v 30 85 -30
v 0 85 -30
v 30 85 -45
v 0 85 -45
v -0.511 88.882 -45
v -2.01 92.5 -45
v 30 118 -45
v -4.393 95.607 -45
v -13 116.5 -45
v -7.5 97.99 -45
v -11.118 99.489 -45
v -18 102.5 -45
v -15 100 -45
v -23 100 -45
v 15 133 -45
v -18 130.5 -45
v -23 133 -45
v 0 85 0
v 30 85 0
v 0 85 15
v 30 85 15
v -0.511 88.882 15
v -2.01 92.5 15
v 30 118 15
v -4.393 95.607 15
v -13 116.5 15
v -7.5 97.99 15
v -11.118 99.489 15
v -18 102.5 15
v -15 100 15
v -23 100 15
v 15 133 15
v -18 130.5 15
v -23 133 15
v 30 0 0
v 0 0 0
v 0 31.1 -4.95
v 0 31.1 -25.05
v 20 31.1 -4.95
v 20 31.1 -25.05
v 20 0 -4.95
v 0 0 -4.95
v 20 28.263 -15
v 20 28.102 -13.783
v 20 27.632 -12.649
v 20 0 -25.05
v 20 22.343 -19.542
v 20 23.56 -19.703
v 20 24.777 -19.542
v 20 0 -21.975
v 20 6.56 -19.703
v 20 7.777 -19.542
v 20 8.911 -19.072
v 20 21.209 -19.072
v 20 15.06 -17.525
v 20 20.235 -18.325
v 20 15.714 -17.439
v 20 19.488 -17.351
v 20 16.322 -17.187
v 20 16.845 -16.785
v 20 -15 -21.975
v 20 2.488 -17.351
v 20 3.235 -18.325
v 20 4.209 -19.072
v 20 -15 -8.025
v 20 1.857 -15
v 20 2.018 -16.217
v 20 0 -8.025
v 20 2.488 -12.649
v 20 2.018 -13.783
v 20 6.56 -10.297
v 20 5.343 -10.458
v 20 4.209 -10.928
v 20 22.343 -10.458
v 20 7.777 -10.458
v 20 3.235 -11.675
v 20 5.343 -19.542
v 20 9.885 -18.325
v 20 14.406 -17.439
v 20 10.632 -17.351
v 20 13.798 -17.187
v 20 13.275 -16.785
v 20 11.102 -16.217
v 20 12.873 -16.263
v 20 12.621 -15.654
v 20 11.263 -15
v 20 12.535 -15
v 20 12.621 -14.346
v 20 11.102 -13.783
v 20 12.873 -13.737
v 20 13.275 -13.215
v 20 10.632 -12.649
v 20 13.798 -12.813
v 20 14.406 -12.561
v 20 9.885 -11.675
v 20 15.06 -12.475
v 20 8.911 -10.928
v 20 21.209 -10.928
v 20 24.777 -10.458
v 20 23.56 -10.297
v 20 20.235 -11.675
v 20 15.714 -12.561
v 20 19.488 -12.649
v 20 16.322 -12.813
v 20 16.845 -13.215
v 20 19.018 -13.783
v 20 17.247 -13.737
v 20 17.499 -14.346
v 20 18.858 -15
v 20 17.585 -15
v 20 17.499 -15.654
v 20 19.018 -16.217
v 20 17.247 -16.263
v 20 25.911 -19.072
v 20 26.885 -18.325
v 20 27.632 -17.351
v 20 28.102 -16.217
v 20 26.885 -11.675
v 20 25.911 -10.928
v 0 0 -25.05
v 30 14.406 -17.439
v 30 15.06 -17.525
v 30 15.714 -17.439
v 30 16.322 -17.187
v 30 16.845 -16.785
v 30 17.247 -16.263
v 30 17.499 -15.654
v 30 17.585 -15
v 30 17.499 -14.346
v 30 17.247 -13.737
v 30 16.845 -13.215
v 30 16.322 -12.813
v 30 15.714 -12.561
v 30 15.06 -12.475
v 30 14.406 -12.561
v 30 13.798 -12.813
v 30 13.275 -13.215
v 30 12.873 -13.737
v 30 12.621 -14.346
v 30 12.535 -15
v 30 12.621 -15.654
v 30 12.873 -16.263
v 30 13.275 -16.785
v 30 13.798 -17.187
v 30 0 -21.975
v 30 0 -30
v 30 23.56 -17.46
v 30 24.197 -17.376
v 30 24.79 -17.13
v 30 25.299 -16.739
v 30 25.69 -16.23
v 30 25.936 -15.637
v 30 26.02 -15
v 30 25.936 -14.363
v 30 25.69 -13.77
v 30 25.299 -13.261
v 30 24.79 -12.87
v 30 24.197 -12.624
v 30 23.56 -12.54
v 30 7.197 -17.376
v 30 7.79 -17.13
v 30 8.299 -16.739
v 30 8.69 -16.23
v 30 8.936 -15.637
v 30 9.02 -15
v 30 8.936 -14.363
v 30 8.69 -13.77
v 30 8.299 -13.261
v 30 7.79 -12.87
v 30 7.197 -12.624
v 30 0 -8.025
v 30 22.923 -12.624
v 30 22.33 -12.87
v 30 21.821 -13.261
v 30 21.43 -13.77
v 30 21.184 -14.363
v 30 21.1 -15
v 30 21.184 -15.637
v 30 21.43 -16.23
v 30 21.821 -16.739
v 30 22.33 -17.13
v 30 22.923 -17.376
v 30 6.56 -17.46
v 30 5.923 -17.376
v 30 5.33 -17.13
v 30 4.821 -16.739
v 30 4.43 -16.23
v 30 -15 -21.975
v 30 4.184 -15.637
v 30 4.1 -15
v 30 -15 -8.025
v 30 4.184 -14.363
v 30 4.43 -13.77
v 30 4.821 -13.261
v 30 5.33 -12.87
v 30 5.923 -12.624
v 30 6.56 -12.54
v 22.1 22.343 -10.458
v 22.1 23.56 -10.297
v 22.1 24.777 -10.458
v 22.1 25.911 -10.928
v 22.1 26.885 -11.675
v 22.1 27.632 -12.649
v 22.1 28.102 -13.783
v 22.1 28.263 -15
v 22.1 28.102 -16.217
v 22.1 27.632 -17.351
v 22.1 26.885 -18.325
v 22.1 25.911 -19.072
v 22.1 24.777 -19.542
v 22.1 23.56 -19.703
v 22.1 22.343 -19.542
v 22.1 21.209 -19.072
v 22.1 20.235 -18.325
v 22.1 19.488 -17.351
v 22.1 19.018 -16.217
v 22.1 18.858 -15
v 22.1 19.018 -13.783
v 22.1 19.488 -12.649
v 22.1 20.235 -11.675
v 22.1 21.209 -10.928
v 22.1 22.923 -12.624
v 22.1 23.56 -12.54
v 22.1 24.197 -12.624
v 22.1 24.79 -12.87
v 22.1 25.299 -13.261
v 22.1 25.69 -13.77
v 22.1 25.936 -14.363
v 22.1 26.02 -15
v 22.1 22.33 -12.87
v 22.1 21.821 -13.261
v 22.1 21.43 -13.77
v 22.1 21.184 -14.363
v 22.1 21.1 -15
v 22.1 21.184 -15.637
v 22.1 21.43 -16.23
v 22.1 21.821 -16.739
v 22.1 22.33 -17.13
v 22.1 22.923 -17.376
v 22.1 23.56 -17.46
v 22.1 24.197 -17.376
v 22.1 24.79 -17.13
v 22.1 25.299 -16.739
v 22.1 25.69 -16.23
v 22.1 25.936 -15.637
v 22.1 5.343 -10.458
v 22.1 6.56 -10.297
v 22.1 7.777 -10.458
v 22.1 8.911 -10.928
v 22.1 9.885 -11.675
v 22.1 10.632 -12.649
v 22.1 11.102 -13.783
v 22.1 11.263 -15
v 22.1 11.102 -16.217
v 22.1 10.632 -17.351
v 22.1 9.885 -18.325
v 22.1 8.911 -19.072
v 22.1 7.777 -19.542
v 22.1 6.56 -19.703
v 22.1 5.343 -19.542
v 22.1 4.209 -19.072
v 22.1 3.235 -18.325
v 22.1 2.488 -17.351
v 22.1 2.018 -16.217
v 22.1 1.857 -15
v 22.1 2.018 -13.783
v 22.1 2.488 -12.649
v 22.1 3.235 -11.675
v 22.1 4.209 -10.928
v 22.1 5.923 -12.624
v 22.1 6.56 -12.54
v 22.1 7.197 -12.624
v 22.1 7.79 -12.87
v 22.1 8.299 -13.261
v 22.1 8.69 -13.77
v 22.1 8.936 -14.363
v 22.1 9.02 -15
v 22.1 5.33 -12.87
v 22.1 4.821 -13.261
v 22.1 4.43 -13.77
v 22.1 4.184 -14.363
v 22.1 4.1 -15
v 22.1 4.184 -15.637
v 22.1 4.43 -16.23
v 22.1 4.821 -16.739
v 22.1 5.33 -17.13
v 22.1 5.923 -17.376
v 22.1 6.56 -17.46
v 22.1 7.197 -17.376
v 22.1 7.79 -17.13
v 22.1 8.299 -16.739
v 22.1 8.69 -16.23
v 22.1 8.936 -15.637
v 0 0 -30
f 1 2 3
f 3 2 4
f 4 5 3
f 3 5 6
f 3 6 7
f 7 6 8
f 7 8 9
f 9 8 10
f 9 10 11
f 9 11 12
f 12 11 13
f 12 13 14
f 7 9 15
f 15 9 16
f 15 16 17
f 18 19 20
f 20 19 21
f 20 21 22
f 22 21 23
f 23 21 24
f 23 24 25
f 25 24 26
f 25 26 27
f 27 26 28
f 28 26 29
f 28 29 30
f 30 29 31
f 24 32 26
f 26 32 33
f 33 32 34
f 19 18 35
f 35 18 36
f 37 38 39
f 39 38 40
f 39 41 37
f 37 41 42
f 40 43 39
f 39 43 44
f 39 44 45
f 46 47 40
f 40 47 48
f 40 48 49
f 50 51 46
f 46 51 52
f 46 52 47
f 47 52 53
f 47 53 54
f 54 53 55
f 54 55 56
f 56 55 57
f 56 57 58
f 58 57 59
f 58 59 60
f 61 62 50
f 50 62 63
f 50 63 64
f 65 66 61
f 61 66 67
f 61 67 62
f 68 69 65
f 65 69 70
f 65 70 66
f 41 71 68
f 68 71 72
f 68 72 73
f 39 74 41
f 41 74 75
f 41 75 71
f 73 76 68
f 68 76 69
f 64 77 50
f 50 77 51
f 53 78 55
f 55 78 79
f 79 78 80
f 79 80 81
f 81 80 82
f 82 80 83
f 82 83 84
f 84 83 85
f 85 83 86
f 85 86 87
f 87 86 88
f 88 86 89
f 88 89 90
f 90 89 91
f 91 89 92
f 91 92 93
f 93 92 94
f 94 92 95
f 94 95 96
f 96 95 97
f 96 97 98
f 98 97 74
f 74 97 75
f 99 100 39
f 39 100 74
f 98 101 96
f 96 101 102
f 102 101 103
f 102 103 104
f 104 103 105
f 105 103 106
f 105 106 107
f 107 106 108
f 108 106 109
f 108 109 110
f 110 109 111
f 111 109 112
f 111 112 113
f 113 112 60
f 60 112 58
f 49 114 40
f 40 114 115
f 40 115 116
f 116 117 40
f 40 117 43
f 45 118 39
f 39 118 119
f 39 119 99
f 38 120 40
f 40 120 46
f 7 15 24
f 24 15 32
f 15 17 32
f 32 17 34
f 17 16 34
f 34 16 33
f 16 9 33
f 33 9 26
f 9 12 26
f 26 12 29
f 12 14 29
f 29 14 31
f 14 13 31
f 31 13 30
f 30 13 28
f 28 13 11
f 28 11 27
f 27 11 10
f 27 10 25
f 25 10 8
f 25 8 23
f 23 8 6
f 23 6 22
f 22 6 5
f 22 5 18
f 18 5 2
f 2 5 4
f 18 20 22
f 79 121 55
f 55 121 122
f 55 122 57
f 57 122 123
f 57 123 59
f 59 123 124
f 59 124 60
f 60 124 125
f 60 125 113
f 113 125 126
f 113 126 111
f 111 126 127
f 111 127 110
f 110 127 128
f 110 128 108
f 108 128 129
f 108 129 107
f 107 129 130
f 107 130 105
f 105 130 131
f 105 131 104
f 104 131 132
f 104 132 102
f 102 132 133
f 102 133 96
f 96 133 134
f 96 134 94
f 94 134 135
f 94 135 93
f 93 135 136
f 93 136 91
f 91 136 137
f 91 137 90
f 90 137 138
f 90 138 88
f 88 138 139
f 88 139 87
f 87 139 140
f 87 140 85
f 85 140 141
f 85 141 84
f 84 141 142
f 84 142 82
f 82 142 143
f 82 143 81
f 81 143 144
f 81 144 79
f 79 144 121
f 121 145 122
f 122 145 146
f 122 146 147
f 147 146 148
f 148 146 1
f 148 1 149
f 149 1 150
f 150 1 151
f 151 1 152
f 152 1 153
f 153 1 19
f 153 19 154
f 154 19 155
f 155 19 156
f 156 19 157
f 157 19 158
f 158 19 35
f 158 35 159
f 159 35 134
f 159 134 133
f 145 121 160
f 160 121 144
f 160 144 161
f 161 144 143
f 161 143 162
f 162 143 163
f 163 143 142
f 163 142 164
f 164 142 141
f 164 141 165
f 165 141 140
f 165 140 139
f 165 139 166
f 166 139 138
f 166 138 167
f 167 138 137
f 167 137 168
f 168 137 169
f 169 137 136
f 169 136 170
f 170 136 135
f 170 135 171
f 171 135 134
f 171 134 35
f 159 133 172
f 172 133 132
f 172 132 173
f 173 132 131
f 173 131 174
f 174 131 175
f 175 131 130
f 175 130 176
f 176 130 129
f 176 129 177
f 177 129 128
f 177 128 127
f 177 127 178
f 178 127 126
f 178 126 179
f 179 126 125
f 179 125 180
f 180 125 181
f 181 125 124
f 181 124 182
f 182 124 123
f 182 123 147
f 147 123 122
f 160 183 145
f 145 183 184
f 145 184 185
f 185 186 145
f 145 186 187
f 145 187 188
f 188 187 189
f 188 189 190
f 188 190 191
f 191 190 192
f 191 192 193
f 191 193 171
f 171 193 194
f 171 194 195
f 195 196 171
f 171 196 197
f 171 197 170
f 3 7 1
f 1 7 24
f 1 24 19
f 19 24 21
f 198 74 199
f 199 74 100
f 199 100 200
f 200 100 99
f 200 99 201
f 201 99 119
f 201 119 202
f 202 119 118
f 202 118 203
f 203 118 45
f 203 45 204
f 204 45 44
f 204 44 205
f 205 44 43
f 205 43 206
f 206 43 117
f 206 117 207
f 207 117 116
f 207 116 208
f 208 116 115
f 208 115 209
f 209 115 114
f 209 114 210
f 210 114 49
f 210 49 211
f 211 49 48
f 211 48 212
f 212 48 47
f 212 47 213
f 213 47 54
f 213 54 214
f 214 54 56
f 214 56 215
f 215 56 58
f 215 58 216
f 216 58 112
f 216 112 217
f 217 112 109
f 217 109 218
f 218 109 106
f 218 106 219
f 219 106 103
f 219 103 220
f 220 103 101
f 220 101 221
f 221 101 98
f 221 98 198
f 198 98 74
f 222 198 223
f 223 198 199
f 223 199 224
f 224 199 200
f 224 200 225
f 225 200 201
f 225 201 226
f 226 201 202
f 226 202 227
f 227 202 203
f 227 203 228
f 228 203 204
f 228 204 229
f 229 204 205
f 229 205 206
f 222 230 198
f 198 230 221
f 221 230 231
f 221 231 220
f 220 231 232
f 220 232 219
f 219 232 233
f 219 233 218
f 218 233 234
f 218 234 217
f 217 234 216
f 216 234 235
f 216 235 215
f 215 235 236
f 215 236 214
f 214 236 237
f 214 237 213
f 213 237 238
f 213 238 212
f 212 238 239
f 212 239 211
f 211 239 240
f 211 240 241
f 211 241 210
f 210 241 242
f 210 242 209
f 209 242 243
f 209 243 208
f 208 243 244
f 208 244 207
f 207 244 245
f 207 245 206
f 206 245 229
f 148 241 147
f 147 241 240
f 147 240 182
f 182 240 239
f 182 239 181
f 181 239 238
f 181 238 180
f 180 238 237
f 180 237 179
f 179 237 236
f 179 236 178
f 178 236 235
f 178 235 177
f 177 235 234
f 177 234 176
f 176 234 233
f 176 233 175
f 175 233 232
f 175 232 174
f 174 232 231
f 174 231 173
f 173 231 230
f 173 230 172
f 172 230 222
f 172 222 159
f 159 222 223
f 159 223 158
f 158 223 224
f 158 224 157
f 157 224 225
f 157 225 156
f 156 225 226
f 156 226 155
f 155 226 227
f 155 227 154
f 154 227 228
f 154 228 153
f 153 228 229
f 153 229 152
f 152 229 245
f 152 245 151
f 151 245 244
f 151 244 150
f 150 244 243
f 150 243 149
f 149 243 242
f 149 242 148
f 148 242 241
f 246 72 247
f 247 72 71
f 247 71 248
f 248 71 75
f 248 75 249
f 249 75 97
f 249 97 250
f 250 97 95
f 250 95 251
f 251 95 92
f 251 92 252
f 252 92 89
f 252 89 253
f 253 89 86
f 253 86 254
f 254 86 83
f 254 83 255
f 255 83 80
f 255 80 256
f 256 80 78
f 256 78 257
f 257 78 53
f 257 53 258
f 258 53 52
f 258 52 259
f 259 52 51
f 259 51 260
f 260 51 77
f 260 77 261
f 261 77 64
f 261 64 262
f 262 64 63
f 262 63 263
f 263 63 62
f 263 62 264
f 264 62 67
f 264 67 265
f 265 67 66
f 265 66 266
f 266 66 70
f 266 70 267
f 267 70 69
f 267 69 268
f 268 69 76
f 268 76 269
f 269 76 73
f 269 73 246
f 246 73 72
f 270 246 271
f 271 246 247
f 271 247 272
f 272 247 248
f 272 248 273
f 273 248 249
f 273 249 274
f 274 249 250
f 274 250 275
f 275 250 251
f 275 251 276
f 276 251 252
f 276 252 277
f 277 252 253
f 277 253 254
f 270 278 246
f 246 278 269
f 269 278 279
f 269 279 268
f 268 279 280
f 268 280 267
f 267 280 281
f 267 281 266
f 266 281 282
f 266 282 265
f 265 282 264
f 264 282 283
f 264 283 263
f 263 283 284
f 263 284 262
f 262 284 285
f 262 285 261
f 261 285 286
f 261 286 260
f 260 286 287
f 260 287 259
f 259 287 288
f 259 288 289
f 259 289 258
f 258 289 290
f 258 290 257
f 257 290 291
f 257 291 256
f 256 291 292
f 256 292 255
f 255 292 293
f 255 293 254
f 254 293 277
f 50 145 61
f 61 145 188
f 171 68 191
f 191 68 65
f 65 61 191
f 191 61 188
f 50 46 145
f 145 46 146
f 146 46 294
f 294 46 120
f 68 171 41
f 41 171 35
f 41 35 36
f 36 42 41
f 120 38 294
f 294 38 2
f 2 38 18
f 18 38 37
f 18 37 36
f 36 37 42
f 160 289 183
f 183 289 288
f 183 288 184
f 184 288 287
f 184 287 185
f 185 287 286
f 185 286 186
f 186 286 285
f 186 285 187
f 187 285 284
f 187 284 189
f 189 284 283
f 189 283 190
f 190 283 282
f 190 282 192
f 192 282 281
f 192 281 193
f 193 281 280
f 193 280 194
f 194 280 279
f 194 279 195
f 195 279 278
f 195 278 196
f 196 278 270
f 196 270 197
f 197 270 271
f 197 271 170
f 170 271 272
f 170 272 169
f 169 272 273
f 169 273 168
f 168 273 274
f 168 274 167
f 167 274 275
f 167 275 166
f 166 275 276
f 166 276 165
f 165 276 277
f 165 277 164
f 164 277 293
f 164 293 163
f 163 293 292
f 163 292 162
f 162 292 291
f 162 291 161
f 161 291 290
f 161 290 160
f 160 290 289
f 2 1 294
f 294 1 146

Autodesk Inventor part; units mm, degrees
ref_plane "YZ Plane" through (0, 0, 0) normal (1, 0, 0) x (0, 1, 0)
ref_plane "XZ Plane" through (0, 0, 0) normal (0, 1, 0) x (-1, 0, 0)
sketch "Sketch1" plane through (0, 0, 0) normal (0, 0, 1) x (1, 0, 0)
  line L0 (0, 0) -> (25, 0)
  line L1 (25, 0) -> (25, 40)
  line L2 (25, 40) -> (0, 40)
  line L3 (0, 40) -> (0, 0)
  dimension "d1" = 25
  dimension "d2" = 40
  dimension "d3" = 25
extrude "Extrusion1" add sketch "Sketch1" against normal blind 30
sketch "Sketch2" plane through (25, 0, 0) normal (1, 0, 0) x (0, 0, -1)
  line L0 (0, 0) -> (30, 0) projected
  circle A0 centre (15, 6.56) radius 2.46
extrude "Extrusion2" cut sketch "Sketch2" against normal blind 30
sketch "Sketch3" plane through (0, 0, 0) normal (-1, 0, 0) x (0, 0, 1)
  line L0 (0, 0) -> (-30, 0) projected
  line L1 (-25.05, 0) -> (-4.95, 0)
  line L2 (-4.95, 0) -> (-4.95, 33.12)
  line L3 (-4.95, 33.12) -> (-25.05, 33.12)
  line L4 (-25.05, 33.12) -> (-25.05, 0)
  dimension "d11" = 20.1
extrude "Extrusion3" cut sketch "Sketch3" against normal blind 20
sketch "Sketch4" plane through (0, 0, 0) normal (0, -1, 0) x (1, 0, 0)
  line L0 (20, -4.95) -> (20, -25.05) projected
  line L1 (20, -15) -> (25, -15)
  line L2 (25, 0) -> (25, -30) projected
  line L3 (20, -8.025) -> (25, -8.025)
  line L4 (25, -8.025) -> (25, -21.975)
  line L5 (25, -21.975) -> (20, -21.975)
  line L6 (20, -21.975) -> (20, -8.025)
  line L7 (20, -8.025) -> (25, -21.975) construction
  line L8 (25, -8.025) -> (20, -21.975) construction
  line L9 (25, -12.54) -> (25, -17.46) projected
  point P0 (0, 0)
  point P1 (22.5, -15)
  dimension "d14" = 13.95
extrude "Extrusion4" add sketch "Sketch4" along normal blind 15
sketch "Sketch5" plane through (20, 0, 0) normal (-1, 0, 0) x (0, 0, 1)
  circle A0 centre (-15, 6.56) radius 2.46 projected
  circle A1 centre (-15, 6.56) radius 4.7025
  circle A2 centre (-15, 6.56) radius 2.46 projected
  circle A3 centre (-15, 6.56) radius 2.46
  point P0 (0, 0)
  dimension "d17" = 9.405
extrude "Extrusion5" cut sketch "Sketch5" against normal blind 2.1
sketch "Sketch6" plane through (25, 0, 0) normal (1, 0, 0) x (0, 0, -1)
  circle A0 centre (15, 6.56) radius 4.7025 projected
  line L0 (15, 6.56) -> (15, 23.56)
  circle A1 centre (15, 23.56) radius 2.46
  point P0 (0, 0)
  dimension "d20" = 17
  dimension "d21" = 4.92
extrude "Extrusion6" cut sketch "Sketch6" against normal blind 10 contours A1
sketch "Sketch7" plane through (20, 0, 0) normal (-1, 0, 0) x (0, 0, 1)
  circle A0 centre (-15, 23.56) radius 2.46 projected
  circle A1 centre (-15, 23.56) radius 4.7025
  point P0 (0, 0)
  dimension "d24" = 9.405
extrude "Extrusion7" cut sketch "Sketch7" against normal blind 2.1
sketch "Sketch9" plane through (25, 0, 0) normal (1, 0, 0) x (0, 0, -1)
  circle A0 centre (15, 6.56) radius 2.46 projected
  circle A1 centre (15, 6.56) radius 2.46
  circle A2 centre (15, 23.56) radius 2.46 projected
  circle A3 centre (15, 23.56) radius 2.46
  line L0 (30, 40) -> (30, 0) projected
  line L1 (30, 0) -> (30, 40)
  line L2 (30, 40) -> (0, 40)
  line L3 (0, 40) -> (0, 0)
  line L4 (0, 0) -> (8.025, 0) projected
  line L5 (21.975, 0) -> (21.975, -15)
  line L6 (21.975, -15) -> (8.025, -15)
  line L7 (8.025, -15) -> (8.025, 0)
  line L8 (0, 0) -> (8.025, 0)
  line L9 (21.975, 0) -> (30, 0)
extrude "Extrusion8" add sketch "Sketch9" along normal blind 5
sketch "Sketch10" plane through (0, 40, 0) normal (0, 1, 0) x (1, 0, 0)
  line L0 (0, 30) -> (30, 30) projected
  line L1 (30, 0) -> (0, 0) projected
  line L2 (0, 30) -> (30, 30)
  line L3 (30, 30) -> (30, 0)
  line L4 (30, 0) -> (0, 0)
  line L5 (0, 0) -> (0, 30)
extrude "Extrusion9" add sketch "Sketch10" along normal blind 30
sketch "Sketch12" plane through (30, 0, 0) normal (1, 0, 0) x (0, 0, -1)
  circle A0 centre (15, 6.56) radius 2.46 projected
  line L0 (15, 6.56) -> (15, 15.06)
  circle A1 centre (15, 15.06) radius 2.525
  point P0 (0, 0)
  dimension "d31" = 8.5
  dimension "d33" = 5.05
extrude "Extrusion10" cut sketch "Sketch12" against normal blind 30 contours A1
sketch "Sketch14" plane through (0, 0, 0) normal (0, 0, 1) x (1, 0, 0)
  line L0 (30, 70) -> (0, 70) projected
  line L1 (0, 70) -> (0, 85)
  line L2 (-15, 100) -> (-23, 100)
  line L3 (30, 0) -> (30, 70) projected
  line L4 (30, 118) -> (30, 70)
  arc A0 (0, 85) -> (-15, 100) centre (-15, 85) ccw
  line L5 (30, 105) -> (30, 100)
  line L6 (-23, 133) -> (15, 133)
  line L7 (-18, 130.5) -> (-23, 133)
  line L8 (-18, 130.5) -> (-13, 116.5)
  line L9 (-18, 102.5) -> (-23, 100)
  line L10 (-18, 102.5) -> (-13, 116.5)
  line L11 (30, 118) -> (15, 133)
  point P0 (0, 0)
  point P1 (0, 100)
  dimension "d47" = 30
  dimension "d54" = 15
extrude "Extrusion12" add sketch "Sketch14" against normal blind 30
sketch "Sketch15" plane through (0, 0, -25.05) normal (-1, 0, 0) x (0, 0, 1)
  line L0 (0, 33.12) -> (20.1, 33.12) projected
  line L1 (20.1, 33.12) -> (20.1, 0) projected
  line L2 (0, 33.12) -> (20.1, 33.12)
  line L3 (20.1, 33.12) -> (20.1, 31.1)
  line L4 (20.1, 31.1) -> (0, 31.1)
  line L5 (0, 31.1) -> (0, 33.12)
  point P0 (25.05, 0)
  dimension "d57" = 2.02
extrude "Extrusion13" add sketch "Sketch15" against normal blind 20
sketch "Sketch21" plane through (0, 0, 0) normal (0, 0, 1) x (1, 0, 0)
  arc A0 (0, 85) -> (-15, 100) centre (-15, 85) ccw projected
  arc A1 (0, 85) -> (-15, 100) centre (-15, 85) ccw
  line L0 (-15, 100) -> (-23, 100) projected
  line L1 (-15, 100) -> (-23, 100)
  line L2 (-23, 100) -> (-18, 102.5) projected
  line L3 (-23, 100) -> (-18, 102.5)
  line L4 (-18, 102.5) -> (-13, 116.5) projected
  line L5 (-18, 102.5) -> (-13, 116.5)
  line L6 (-13, 116.5) -> (-18, 130.5) projected
  line L7 (-13, 116.5) -> (-18, 130.5)
  line L8 (-18, 130.5) -> (-23, 133) projected
  line L9 (-18, 130.5) -> (-23, 133)
  line L10 (-23, 133) -> (15, 133) projected
  line L11 (-23, 133) -> (15, 133)
  line L12 (15, 133) -> (30, 118) projected
  line L13 (15, 133) -> (30, 118)
  line L14 (0, 85) -> (30, 85)
  line L15 (30, 85) -> (30, 118)
  point P0 (0, 0)
extrude "Extrusion14" add sketch "Sketch21" along normal blind 15
ref_plane "Work Plane1" through (0, 0, -15) normal (0, 0, 1) x (1, 0, 0)
mirror "Mirror1" about plane through (0, 0, -15) normal (0, 0, 1) of "Extrusion14"
properties part number "28mm_x_60mm"
